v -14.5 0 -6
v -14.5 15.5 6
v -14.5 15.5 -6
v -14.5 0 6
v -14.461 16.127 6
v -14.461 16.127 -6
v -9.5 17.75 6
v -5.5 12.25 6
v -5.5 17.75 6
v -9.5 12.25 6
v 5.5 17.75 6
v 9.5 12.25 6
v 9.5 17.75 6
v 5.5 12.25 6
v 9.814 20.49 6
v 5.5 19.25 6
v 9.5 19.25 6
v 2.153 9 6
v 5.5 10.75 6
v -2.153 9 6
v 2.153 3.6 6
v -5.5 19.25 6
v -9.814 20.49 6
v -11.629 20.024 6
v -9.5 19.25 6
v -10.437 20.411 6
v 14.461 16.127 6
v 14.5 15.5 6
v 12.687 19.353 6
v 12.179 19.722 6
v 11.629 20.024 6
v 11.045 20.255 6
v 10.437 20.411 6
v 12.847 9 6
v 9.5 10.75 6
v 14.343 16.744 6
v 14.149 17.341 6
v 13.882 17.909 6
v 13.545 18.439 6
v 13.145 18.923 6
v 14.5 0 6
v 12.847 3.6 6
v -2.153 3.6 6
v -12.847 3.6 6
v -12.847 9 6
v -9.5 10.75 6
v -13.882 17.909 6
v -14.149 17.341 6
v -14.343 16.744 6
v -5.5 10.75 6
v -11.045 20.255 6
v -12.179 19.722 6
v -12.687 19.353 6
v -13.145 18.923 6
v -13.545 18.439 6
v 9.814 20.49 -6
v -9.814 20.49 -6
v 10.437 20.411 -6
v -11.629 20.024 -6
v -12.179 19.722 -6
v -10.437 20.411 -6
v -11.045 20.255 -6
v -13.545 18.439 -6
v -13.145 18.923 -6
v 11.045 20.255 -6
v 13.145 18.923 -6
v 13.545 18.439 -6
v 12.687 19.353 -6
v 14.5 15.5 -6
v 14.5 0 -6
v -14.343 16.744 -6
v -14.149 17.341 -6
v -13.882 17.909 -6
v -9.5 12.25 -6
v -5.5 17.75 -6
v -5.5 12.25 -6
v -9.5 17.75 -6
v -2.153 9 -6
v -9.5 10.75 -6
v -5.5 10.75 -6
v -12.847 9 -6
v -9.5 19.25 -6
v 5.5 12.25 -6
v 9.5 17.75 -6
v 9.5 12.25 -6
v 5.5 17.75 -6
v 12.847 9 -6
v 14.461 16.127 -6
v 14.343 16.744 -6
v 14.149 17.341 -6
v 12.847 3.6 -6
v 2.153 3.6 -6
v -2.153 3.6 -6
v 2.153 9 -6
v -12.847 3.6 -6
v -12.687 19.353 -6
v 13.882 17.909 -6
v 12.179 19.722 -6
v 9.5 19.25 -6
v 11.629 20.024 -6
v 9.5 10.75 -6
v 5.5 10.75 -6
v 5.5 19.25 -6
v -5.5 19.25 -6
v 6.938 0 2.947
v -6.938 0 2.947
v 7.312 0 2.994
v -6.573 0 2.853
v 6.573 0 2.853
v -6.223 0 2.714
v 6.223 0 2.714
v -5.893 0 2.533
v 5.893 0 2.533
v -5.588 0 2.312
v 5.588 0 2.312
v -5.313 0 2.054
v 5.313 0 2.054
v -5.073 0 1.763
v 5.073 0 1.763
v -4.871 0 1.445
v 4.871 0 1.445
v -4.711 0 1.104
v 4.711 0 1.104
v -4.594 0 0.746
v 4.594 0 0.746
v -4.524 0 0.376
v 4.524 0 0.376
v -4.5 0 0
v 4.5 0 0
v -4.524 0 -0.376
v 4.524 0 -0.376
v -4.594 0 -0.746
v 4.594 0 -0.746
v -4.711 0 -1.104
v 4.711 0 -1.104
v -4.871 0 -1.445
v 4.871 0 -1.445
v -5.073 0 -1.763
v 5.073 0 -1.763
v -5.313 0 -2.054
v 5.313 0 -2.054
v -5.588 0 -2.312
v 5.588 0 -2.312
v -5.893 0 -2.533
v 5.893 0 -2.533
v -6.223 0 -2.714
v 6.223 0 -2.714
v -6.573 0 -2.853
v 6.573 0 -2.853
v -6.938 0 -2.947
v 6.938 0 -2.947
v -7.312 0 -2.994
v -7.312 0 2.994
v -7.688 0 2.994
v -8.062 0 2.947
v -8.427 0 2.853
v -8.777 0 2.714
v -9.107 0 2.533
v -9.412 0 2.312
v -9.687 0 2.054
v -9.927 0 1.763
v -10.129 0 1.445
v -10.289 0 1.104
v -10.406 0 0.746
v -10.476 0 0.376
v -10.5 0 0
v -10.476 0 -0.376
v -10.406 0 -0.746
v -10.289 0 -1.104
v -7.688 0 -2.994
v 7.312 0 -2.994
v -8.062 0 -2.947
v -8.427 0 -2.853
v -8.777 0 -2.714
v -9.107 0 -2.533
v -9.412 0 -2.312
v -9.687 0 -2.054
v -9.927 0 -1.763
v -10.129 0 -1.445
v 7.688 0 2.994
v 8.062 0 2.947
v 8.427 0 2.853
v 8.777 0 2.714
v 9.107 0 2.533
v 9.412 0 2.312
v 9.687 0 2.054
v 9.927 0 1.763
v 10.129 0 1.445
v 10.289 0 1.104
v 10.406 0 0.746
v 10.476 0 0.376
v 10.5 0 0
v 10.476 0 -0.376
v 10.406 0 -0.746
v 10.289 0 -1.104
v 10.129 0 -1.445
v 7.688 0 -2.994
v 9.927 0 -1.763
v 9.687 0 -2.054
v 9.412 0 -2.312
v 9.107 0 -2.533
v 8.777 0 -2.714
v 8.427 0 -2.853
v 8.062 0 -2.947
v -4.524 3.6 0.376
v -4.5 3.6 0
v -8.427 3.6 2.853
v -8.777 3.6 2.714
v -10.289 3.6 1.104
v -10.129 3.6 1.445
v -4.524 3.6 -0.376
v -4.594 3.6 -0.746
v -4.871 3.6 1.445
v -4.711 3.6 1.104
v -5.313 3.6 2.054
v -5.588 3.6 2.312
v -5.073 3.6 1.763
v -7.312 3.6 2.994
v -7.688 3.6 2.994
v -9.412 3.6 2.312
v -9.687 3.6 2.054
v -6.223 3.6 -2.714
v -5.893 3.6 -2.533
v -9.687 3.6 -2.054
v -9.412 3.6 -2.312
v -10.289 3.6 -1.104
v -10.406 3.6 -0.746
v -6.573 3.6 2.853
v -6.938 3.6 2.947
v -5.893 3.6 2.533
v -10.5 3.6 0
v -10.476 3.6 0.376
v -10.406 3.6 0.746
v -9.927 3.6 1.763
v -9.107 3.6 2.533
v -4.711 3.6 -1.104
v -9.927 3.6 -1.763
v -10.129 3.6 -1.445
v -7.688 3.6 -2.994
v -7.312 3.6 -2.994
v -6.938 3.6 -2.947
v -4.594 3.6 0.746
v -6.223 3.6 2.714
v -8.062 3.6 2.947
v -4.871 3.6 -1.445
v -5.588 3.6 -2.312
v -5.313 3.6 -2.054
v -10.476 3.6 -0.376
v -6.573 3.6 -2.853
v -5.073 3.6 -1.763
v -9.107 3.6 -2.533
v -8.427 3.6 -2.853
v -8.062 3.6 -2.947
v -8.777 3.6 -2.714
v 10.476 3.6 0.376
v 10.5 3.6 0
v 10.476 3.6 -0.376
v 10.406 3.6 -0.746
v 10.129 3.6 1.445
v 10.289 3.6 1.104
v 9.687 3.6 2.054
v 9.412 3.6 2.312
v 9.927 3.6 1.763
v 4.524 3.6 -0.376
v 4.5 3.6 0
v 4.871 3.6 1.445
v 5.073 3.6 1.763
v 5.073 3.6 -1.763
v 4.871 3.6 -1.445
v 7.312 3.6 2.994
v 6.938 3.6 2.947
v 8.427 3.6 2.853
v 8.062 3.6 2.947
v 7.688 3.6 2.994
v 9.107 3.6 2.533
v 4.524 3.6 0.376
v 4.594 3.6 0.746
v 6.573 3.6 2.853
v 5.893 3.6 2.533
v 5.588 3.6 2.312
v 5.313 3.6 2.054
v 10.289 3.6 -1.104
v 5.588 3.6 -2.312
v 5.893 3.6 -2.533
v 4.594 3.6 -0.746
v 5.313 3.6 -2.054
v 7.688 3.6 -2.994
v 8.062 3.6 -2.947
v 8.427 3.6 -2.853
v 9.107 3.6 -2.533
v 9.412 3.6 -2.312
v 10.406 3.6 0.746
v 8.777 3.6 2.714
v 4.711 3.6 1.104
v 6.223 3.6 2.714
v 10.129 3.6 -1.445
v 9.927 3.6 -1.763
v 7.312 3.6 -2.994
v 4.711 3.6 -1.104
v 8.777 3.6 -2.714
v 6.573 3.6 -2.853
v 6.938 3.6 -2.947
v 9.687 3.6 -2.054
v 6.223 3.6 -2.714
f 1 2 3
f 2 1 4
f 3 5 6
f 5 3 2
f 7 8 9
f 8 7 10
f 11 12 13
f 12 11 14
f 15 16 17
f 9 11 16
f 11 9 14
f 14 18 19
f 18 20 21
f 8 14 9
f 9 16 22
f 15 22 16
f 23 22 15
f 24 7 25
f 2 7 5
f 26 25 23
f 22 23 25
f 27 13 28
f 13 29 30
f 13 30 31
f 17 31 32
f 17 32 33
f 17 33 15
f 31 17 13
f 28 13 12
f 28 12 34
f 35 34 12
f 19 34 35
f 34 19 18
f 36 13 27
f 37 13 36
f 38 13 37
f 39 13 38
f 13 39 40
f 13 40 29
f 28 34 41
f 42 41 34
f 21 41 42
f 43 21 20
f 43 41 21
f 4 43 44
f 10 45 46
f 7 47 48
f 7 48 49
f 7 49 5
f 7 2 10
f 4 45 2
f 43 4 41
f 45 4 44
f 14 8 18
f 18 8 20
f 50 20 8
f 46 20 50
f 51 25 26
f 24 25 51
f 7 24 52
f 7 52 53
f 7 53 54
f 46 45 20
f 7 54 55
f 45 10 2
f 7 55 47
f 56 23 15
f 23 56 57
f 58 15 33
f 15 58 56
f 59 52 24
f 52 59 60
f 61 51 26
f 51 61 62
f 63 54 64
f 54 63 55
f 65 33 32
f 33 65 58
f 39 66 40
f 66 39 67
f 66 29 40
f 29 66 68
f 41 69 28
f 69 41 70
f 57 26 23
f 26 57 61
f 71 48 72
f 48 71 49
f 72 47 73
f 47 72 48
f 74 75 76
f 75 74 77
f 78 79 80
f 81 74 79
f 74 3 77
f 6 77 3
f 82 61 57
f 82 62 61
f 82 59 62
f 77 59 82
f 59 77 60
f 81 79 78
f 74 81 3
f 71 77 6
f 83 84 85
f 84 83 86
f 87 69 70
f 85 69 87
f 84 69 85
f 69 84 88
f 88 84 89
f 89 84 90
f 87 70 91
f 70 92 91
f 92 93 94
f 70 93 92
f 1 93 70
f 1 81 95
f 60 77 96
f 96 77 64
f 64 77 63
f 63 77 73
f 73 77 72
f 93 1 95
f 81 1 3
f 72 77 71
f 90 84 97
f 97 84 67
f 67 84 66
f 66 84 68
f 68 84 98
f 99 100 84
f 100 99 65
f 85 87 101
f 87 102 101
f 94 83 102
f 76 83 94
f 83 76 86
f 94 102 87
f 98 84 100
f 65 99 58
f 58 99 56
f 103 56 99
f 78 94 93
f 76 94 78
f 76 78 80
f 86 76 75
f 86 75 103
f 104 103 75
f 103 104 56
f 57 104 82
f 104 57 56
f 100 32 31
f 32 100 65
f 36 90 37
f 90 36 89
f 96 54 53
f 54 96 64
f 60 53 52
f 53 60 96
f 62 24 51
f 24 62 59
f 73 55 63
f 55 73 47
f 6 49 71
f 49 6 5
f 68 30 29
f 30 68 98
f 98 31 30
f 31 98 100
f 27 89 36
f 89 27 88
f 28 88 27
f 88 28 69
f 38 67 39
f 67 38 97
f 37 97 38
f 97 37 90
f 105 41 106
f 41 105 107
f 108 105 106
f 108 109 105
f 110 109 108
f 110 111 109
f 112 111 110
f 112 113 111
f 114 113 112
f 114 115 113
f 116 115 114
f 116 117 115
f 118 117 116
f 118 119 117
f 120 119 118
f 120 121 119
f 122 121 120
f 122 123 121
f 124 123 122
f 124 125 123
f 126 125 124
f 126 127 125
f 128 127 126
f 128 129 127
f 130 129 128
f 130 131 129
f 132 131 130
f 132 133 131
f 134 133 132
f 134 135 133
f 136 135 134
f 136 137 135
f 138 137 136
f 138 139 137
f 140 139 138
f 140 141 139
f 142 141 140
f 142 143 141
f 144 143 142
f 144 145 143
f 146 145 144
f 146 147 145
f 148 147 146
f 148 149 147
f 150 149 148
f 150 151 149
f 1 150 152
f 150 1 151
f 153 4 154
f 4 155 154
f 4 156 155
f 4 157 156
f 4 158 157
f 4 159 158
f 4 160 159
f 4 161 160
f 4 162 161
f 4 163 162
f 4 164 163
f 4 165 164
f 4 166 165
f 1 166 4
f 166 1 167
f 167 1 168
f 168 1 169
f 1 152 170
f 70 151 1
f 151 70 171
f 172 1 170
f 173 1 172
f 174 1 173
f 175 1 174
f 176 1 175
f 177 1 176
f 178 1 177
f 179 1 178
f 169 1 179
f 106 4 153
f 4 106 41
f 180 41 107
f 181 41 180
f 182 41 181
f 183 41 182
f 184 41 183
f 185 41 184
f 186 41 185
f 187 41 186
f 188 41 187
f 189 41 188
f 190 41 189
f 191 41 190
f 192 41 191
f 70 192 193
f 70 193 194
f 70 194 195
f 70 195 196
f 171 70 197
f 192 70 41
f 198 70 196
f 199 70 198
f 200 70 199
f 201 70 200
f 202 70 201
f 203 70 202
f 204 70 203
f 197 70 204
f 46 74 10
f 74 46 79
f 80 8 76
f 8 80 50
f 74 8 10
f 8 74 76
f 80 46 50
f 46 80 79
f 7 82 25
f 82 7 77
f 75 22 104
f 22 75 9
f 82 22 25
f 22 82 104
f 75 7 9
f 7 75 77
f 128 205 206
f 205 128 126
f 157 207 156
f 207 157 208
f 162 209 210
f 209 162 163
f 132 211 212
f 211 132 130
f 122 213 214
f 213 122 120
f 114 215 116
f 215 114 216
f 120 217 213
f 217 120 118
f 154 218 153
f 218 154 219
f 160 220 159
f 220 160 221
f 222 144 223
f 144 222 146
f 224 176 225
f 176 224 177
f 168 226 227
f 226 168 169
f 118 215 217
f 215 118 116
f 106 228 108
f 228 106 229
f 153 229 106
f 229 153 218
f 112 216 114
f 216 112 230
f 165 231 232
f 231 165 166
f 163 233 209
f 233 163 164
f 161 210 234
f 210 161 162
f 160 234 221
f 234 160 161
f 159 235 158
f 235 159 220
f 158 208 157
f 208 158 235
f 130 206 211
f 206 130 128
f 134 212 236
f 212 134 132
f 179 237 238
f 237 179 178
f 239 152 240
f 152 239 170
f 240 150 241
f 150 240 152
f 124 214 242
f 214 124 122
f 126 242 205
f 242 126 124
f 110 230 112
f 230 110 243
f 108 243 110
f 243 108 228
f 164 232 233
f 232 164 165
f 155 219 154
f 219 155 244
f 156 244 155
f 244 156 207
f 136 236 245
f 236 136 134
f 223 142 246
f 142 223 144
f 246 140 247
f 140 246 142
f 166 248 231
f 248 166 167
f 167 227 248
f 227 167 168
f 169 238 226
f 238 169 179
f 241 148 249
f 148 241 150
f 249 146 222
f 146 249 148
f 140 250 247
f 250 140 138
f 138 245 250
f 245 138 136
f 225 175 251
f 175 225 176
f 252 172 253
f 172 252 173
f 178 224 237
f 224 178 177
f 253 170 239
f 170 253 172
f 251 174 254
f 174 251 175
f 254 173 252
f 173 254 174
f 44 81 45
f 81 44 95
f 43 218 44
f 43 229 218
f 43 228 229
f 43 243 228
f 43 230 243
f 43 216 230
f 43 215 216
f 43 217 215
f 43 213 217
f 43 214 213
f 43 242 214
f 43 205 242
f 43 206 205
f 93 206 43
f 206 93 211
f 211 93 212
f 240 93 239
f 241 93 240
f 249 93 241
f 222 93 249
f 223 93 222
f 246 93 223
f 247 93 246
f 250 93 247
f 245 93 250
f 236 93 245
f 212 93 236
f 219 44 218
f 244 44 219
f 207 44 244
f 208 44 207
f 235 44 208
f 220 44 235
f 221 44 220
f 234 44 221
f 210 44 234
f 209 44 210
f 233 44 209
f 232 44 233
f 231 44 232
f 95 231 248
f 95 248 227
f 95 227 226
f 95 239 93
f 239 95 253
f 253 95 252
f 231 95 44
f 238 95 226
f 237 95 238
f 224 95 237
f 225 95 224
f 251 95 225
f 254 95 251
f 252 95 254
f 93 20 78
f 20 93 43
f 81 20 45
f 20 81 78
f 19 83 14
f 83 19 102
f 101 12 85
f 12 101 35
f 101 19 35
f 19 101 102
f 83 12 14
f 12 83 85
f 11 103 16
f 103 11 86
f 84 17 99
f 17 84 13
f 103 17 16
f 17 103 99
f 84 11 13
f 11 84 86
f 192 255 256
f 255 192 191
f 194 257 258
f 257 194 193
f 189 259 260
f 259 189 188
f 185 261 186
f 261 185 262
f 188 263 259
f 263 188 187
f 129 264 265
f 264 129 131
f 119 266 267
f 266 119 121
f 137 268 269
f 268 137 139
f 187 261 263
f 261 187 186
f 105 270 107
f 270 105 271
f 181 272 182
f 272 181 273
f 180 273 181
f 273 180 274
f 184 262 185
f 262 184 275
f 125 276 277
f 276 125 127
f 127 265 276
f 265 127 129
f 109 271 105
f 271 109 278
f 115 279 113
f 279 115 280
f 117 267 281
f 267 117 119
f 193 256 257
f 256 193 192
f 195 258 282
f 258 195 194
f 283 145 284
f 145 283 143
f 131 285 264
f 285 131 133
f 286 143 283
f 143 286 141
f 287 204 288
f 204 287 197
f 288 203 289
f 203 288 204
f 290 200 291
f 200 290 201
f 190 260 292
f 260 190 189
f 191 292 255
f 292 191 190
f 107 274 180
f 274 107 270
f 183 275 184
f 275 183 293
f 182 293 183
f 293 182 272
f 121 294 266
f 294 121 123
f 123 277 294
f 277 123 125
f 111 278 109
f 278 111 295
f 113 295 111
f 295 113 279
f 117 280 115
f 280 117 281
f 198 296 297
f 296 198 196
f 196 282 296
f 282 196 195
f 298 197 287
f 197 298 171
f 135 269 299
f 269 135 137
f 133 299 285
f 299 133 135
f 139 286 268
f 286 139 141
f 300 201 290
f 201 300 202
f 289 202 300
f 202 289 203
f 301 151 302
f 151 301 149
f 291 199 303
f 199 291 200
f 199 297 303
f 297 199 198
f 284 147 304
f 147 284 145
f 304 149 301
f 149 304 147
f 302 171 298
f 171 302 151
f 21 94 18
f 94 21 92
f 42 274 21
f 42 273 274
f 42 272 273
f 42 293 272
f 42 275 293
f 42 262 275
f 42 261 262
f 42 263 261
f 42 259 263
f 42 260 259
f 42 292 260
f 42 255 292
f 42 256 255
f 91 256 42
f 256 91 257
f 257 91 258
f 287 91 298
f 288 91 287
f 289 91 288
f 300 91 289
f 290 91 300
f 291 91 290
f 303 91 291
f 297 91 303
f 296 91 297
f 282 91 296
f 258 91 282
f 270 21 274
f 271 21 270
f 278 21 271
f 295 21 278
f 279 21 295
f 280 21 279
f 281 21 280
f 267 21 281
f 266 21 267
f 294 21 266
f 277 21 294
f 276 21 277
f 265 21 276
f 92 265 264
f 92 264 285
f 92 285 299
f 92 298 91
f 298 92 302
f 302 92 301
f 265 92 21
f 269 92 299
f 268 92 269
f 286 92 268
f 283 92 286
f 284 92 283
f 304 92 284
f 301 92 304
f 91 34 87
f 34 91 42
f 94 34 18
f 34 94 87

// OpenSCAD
$fn = 50;


difference() {
	union() {
		translate(v = [0, 13.5000000000, -6.0000000000]) {
			rotate(a = [0, 0, 0]) {
				hull() {
					translate(v = [-9.5000000000, 2.0000000000, 0]) {
						rotate(a = [0, 0, 0]) {
							translate(v = [0, 0, 0]) {
								rotate(a = [0, 0, 0]) {
									cylinder(h = 12, r = 5);
								}
							}
						}
					}
					translate(v = [9.5000000000, 2.0000000000, 0]) {
						rotate(a = [0, 0, 0]) {
							translate(v = [0, 0, 0]) {
								rotate(a = [0, 0, 0]) {
									cylinder(h = 12, r = 5);
								}
							}
						}
					}
					translate(v = [-9.5000000000, -2.0000000000, 0]) {
						rotate(a = [0, 0, 0]) {
							translate(v = [0, 0, 0]) {
								rotate(a = [0, 0, 0]) {
									cylinder(h = 12, r = 5);
								}
							}
						}
					}
					translate(v = [9.5000000000, -2.0000000000, 0]) {
						rotate(a = [0, 0, 0]) {
							translate(v = [0, 0, 0]) {
								rotate(a = [0, 0, 0]) {
									cylinder(h = 12, r = 5);
								}
							}
						}
					}
				}
			}
		}
		translate(v = [-14.5000000000, 0, -6.0000000000]) {
			rotate(a = [0, 0, 0]) {
				cube(size = [29, 13.5000000000, 12]);
			}
		}
	}
	union() {
		translate(v = [-9.5000000000, 10.7500000000, -50]) {
			rotate(a = [0, 0, 0]) {
				cube(size = [4, 1.5000000000, 100]);
			}
		}
		translate(v = [-9.5000000000, 17.7500000000, -50]) {
			rotate(a = [0, 0, 0]) {
				cube(size = [4, 1.5000000000, 100]);
			}
		}
		translate(v = [-7.5000000000, 8, 0]) {
			rotate(a = [90, 0, 0]) {
				cylinder(h = 8, r = 3.0000000000);
			}
		}
		translate(v = [-12.8466204506, 9, -25]) {
			rotate(a = [90, 0, 0]) {
				cube(size = [10.6932409012, 100, 5.4000000000]);
			}
		}
		translate(v = [5.5000000000, 10.7500000000, -50]) {
			rotate(a = [0, 0, 0]) {
				cube(size = [4, 1.5000000000, 100]);
			}
		}
		translate(v = [5.5000000000, 17.7500000000, -50]) {
			rotate(a = [0, 0, 0]) {
				cube(size = [4, 1.5000000000, 100]);
			}
		}
		translate(v = [7.5000000000, 8, 0]) {
			rotate(a = [90, 0, 0]) {
				cylinder(h = 8, r = 3.0000000000);
			}
		}
		translate(v = [2.1533795494, 9, -25]) {
			rotate(a = [90, 0, 0]) {
				cube(size = [10.6932409012, 100, 5.4000000000]);
			}
		}
	}
}
